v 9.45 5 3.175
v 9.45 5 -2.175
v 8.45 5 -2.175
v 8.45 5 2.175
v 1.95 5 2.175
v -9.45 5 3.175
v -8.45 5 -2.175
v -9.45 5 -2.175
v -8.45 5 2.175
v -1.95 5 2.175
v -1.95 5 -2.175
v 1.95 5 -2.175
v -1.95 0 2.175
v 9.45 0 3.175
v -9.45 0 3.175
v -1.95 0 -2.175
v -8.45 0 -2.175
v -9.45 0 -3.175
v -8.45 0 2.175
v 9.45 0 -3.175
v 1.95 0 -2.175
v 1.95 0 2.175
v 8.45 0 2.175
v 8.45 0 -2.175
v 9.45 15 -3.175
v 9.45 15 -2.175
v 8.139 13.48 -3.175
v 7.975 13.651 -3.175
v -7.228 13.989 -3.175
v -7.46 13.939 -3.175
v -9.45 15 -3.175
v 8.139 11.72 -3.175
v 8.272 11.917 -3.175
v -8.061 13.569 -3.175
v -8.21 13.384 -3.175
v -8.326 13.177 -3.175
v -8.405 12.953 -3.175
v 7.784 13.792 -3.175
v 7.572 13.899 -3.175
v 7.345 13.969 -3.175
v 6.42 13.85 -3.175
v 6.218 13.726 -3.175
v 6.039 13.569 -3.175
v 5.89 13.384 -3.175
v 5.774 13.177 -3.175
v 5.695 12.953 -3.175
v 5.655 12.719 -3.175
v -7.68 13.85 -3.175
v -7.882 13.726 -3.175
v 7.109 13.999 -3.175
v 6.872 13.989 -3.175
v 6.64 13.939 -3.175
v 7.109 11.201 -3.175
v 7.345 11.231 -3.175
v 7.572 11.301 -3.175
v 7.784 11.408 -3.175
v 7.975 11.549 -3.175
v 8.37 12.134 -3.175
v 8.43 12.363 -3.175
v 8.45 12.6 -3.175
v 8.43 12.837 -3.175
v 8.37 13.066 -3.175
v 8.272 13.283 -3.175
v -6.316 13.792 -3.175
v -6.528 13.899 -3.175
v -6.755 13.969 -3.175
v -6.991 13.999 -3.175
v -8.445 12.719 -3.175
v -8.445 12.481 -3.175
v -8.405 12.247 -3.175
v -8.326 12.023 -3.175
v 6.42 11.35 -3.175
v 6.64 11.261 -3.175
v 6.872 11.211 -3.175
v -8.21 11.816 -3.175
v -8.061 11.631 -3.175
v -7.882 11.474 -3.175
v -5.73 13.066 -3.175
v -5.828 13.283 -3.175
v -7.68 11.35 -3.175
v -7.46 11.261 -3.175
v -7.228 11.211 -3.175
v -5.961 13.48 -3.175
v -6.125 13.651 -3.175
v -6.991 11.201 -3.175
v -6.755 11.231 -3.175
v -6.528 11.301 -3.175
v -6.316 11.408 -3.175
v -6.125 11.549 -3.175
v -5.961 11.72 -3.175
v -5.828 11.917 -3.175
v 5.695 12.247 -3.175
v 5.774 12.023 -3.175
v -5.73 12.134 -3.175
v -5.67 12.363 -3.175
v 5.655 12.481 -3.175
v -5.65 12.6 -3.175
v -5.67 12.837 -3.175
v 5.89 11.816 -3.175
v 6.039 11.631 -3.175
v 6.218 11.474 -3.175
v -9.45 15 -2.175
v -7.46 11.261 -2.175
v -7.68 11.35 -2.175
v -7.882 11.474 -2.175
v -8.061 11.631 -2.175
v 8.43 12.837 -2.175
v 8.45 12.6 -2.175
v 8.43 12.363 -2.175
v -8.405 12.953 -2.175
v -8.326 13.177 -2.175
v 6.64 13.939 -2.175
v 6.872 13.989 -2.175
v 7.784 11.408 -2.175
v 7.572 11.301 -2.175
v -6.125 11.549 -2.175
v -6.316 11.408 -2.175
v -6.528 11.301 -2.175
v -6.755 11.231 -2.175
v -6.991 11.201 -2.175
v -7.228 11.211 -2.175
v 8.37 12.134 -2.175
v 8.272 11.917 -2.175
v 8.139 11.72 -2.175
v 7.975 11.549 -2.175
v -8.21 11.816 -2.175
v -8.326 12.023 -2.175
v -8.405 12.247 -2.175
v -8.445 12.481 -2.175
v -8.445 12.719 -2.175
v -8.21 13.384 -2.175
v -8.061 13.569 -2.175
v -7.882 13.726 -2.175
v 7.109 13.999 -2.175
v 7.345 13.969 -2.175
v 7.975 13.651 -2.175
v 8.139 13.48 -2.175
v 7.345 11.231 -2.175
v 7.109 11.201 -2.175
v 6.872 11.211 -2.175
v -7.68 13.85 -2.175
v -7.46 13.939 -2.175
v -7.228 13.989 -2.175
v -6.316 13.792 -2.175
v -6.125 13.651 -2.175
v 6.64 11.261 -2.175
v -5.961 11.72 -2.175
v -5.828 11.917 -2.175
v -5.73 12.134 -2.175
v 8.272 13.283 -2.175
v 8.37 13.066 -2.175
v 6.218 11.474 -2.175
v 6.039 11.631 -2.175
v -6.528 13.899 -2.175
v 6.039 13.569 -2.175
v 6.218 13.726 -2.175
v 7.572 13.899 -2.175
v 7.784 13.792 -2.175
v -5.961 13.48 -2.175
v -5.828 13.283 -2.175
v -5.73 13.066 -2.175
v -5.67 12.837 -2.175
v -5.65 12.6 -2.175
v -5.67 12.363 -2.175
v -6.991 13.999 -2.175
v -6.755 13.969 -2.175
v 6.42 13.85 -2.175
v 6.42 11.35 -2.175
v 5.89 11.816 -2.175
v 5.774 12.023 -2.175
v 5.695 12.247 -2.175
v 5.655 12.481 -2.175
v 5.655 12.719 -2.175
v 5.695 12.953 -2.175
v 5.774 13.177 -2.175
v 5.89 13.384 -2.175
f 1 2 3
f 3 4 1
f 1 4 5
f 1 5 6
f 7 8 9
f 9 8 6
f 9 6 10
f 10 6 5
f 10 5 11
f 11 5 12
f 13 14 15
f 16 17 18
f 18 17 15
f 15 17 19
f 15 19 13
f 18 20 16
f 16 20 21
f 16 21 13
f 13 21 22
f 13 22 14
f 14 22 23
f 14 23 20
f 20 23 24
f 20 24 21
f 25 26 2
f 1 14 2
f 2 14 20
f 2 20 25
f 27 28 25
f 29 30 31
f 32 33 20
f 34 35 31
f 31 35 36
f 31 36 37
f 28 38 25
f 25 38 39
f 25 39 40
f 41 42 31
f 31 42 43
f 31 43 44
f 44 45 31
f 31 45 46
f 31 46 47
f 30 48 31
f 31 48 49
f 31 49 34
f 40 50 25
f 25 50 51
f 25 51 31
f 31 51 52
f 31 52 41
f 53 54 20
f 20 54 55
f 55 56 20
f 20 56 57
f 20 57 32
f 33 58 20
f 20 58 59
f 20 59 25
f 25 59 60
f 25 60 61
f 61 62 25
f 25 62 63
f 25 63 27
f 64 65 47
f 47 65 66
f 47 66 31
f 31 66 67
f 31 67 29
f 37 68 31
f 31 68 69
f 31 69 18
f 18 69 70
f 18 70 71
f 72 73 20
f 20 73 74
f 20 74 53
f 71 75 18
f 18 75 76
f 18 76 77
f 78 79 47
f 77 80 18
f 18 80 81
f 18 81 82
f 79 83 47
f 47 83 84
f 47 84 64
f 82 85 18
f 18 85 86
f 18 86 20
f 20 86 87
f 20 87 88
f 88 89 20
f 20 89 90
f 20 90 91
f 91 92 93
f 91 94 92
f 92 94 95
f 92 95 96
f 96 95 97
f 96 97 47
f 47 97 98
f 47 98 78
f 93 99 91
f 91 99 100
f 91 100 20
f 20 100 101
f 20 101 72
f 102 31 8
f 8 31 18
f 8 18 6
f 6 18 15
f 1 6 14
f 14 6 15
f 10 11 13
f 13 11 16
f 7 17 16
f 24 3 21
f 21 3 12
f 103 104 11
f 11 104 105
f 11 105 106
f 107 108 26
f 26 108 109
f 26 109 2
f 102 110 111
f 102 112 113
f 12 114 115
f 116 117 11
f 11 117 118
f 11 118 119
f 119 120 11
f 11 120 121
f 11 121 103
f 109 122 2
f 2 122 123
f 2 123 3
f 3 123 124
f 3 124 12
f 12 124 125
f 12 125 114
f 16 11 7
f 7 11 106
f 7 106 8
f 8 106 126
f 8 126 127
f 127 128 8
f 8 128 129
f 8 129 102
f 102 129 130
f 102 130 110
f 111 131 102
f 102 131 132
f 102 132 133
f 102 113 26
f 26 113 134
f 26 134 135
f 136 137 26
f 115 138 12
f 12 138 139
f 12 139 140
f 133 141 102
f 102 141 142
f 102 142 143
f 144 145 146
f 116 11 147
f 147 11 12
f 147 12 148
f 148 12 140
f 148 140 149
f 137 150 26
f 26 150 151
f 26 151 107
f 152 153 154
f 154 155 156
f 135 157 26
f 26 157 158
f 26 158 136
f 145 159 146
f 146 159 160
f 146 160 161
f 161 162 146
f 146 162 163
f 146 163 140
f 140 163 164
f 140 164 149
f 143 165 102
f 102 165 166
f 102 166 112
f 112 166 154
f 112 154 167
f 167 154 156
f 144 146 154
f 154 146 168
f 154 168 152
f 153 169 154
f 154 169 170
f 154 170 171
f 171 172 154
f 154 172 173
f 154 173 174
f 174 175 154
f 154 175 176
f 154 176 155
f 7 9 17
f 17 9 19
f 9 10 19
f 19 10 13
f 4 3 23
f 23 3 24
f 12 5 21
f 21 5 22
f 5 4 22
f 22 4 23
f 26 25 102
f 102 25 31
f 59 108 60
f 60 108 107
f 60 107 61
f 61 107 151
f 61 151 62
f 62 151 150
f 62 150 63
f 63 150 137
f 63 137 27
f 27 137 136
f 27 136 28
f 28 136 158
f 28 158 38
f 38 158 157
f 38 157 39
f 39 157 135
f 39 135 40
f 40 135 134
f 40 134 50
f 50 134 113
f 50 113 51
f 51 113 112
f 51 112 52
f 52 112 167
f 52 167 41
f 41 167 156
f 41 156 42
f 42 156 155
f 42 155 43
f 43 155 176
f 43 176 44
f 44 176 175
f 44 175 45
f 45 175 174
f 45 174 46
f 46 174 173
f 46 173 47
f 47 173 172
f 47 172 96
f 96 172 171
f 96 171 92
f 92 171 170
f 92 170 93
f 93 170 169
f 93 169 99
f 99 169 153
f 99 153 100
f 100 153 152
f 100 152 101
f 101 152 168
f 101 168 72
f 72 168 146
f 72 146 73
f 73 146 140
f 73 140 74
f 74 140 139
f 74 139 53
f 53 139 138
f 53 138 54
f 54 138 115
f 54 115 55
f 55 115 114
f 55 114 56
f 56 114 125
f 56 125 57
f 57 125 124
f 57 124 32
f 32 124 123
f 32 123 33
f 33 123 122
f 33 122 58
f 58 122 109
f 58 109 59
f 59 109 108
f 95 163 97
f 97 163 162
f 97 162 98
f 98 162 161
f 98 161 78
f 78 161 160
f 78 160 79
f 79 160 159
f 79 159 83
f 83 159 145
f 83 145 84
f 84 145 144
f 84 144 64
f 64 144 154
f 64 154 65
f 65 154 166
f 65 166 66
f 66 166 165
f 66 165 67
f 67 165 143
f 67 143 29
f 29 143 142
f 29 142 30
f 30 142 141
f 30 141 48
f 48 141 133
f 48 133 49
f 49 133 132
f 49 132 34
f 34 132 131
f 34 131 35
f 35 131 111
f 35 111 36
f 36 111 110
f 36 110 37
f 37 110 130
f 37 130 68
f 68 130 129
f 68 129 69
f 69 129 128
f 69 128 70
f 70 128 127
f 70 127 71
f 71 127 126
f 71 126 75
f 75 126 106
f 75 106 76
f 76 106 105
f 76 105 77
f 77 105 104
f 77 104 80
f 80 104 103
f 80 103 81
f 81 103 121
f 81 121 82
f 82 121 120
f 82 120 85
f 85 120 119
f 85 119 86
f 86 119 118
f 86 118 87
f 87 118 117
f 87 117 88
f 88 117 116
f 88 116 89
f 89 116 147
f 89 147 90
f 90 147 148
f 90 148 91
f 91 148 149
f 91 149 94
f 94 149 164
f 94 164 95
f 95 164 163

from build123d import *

# Parameters (mm, degrees)
SKETCH1_W           = 18.9
SKETCH1_H           = 6.35
SKETCH1_W_2         = 6.5
SKETCH1_H_2         = 4.35
BOSS_EXTRUDE1_DEPTH = 5
SKETCH2_W           = 18.9
SKETCH2_H           = 1
BOSS_EXTRUDE2_DEPTH = 10
SKETCH3_R           = 1.4
CUT_EXTRUDE1_DEPTH  = 2


with BuildPart() as part:
    # Sketch1 → Boss-Extrude1 (new body)
    with BuildSketch(Plane(origin=(0, 0, 0), x_dir=(1, 0, 0), z_dir=(0, 1, 0))):
        Rectangle(SKETCH1_W, SKETCH1_H)
        with Locations((-5.2, 0)):
            Rectangle(SKETCH1_W_2, SKETCH1_H_2, mode=Mode.SUBTRACT)
        with Locations((5.2, 0)):
            Rectangle(SKETCH1_W_2, SKETCH1_H_2, mode=Mode.SUBTRACT)
    extrude(amount=BOSS_EXTRUDE1_DEPTH)

    # Sketch2 → Boss-Extrude2 (add)
    with BuildSketch(Plane(origin=(0, 5, 0), x_dir=(1, 0, 0), z_dir=(0, 1, 0))):
        with Locations((0, 2.675)):
            Rectangle(SKETCH2_W, SKETCH2_H)
    extrude(amount=BOSS_EXTRUDE2_DEPTH)

    # Sketch3 → Cut-Extrude1 (cut, through all)
    with BuildSketch(Plane.XY.offset(-2.175)):
        with Locations((7.05, 12.6)):
            Circle(SKETCH3_R)
        with Locations((-7.05, 12.6)):
            Circle(SKETCH3_R)
    extrude(amount=-CUT_EXTRUDE1_DEPTH, mode=Mode.SUBTRACT)


solid = part.part
